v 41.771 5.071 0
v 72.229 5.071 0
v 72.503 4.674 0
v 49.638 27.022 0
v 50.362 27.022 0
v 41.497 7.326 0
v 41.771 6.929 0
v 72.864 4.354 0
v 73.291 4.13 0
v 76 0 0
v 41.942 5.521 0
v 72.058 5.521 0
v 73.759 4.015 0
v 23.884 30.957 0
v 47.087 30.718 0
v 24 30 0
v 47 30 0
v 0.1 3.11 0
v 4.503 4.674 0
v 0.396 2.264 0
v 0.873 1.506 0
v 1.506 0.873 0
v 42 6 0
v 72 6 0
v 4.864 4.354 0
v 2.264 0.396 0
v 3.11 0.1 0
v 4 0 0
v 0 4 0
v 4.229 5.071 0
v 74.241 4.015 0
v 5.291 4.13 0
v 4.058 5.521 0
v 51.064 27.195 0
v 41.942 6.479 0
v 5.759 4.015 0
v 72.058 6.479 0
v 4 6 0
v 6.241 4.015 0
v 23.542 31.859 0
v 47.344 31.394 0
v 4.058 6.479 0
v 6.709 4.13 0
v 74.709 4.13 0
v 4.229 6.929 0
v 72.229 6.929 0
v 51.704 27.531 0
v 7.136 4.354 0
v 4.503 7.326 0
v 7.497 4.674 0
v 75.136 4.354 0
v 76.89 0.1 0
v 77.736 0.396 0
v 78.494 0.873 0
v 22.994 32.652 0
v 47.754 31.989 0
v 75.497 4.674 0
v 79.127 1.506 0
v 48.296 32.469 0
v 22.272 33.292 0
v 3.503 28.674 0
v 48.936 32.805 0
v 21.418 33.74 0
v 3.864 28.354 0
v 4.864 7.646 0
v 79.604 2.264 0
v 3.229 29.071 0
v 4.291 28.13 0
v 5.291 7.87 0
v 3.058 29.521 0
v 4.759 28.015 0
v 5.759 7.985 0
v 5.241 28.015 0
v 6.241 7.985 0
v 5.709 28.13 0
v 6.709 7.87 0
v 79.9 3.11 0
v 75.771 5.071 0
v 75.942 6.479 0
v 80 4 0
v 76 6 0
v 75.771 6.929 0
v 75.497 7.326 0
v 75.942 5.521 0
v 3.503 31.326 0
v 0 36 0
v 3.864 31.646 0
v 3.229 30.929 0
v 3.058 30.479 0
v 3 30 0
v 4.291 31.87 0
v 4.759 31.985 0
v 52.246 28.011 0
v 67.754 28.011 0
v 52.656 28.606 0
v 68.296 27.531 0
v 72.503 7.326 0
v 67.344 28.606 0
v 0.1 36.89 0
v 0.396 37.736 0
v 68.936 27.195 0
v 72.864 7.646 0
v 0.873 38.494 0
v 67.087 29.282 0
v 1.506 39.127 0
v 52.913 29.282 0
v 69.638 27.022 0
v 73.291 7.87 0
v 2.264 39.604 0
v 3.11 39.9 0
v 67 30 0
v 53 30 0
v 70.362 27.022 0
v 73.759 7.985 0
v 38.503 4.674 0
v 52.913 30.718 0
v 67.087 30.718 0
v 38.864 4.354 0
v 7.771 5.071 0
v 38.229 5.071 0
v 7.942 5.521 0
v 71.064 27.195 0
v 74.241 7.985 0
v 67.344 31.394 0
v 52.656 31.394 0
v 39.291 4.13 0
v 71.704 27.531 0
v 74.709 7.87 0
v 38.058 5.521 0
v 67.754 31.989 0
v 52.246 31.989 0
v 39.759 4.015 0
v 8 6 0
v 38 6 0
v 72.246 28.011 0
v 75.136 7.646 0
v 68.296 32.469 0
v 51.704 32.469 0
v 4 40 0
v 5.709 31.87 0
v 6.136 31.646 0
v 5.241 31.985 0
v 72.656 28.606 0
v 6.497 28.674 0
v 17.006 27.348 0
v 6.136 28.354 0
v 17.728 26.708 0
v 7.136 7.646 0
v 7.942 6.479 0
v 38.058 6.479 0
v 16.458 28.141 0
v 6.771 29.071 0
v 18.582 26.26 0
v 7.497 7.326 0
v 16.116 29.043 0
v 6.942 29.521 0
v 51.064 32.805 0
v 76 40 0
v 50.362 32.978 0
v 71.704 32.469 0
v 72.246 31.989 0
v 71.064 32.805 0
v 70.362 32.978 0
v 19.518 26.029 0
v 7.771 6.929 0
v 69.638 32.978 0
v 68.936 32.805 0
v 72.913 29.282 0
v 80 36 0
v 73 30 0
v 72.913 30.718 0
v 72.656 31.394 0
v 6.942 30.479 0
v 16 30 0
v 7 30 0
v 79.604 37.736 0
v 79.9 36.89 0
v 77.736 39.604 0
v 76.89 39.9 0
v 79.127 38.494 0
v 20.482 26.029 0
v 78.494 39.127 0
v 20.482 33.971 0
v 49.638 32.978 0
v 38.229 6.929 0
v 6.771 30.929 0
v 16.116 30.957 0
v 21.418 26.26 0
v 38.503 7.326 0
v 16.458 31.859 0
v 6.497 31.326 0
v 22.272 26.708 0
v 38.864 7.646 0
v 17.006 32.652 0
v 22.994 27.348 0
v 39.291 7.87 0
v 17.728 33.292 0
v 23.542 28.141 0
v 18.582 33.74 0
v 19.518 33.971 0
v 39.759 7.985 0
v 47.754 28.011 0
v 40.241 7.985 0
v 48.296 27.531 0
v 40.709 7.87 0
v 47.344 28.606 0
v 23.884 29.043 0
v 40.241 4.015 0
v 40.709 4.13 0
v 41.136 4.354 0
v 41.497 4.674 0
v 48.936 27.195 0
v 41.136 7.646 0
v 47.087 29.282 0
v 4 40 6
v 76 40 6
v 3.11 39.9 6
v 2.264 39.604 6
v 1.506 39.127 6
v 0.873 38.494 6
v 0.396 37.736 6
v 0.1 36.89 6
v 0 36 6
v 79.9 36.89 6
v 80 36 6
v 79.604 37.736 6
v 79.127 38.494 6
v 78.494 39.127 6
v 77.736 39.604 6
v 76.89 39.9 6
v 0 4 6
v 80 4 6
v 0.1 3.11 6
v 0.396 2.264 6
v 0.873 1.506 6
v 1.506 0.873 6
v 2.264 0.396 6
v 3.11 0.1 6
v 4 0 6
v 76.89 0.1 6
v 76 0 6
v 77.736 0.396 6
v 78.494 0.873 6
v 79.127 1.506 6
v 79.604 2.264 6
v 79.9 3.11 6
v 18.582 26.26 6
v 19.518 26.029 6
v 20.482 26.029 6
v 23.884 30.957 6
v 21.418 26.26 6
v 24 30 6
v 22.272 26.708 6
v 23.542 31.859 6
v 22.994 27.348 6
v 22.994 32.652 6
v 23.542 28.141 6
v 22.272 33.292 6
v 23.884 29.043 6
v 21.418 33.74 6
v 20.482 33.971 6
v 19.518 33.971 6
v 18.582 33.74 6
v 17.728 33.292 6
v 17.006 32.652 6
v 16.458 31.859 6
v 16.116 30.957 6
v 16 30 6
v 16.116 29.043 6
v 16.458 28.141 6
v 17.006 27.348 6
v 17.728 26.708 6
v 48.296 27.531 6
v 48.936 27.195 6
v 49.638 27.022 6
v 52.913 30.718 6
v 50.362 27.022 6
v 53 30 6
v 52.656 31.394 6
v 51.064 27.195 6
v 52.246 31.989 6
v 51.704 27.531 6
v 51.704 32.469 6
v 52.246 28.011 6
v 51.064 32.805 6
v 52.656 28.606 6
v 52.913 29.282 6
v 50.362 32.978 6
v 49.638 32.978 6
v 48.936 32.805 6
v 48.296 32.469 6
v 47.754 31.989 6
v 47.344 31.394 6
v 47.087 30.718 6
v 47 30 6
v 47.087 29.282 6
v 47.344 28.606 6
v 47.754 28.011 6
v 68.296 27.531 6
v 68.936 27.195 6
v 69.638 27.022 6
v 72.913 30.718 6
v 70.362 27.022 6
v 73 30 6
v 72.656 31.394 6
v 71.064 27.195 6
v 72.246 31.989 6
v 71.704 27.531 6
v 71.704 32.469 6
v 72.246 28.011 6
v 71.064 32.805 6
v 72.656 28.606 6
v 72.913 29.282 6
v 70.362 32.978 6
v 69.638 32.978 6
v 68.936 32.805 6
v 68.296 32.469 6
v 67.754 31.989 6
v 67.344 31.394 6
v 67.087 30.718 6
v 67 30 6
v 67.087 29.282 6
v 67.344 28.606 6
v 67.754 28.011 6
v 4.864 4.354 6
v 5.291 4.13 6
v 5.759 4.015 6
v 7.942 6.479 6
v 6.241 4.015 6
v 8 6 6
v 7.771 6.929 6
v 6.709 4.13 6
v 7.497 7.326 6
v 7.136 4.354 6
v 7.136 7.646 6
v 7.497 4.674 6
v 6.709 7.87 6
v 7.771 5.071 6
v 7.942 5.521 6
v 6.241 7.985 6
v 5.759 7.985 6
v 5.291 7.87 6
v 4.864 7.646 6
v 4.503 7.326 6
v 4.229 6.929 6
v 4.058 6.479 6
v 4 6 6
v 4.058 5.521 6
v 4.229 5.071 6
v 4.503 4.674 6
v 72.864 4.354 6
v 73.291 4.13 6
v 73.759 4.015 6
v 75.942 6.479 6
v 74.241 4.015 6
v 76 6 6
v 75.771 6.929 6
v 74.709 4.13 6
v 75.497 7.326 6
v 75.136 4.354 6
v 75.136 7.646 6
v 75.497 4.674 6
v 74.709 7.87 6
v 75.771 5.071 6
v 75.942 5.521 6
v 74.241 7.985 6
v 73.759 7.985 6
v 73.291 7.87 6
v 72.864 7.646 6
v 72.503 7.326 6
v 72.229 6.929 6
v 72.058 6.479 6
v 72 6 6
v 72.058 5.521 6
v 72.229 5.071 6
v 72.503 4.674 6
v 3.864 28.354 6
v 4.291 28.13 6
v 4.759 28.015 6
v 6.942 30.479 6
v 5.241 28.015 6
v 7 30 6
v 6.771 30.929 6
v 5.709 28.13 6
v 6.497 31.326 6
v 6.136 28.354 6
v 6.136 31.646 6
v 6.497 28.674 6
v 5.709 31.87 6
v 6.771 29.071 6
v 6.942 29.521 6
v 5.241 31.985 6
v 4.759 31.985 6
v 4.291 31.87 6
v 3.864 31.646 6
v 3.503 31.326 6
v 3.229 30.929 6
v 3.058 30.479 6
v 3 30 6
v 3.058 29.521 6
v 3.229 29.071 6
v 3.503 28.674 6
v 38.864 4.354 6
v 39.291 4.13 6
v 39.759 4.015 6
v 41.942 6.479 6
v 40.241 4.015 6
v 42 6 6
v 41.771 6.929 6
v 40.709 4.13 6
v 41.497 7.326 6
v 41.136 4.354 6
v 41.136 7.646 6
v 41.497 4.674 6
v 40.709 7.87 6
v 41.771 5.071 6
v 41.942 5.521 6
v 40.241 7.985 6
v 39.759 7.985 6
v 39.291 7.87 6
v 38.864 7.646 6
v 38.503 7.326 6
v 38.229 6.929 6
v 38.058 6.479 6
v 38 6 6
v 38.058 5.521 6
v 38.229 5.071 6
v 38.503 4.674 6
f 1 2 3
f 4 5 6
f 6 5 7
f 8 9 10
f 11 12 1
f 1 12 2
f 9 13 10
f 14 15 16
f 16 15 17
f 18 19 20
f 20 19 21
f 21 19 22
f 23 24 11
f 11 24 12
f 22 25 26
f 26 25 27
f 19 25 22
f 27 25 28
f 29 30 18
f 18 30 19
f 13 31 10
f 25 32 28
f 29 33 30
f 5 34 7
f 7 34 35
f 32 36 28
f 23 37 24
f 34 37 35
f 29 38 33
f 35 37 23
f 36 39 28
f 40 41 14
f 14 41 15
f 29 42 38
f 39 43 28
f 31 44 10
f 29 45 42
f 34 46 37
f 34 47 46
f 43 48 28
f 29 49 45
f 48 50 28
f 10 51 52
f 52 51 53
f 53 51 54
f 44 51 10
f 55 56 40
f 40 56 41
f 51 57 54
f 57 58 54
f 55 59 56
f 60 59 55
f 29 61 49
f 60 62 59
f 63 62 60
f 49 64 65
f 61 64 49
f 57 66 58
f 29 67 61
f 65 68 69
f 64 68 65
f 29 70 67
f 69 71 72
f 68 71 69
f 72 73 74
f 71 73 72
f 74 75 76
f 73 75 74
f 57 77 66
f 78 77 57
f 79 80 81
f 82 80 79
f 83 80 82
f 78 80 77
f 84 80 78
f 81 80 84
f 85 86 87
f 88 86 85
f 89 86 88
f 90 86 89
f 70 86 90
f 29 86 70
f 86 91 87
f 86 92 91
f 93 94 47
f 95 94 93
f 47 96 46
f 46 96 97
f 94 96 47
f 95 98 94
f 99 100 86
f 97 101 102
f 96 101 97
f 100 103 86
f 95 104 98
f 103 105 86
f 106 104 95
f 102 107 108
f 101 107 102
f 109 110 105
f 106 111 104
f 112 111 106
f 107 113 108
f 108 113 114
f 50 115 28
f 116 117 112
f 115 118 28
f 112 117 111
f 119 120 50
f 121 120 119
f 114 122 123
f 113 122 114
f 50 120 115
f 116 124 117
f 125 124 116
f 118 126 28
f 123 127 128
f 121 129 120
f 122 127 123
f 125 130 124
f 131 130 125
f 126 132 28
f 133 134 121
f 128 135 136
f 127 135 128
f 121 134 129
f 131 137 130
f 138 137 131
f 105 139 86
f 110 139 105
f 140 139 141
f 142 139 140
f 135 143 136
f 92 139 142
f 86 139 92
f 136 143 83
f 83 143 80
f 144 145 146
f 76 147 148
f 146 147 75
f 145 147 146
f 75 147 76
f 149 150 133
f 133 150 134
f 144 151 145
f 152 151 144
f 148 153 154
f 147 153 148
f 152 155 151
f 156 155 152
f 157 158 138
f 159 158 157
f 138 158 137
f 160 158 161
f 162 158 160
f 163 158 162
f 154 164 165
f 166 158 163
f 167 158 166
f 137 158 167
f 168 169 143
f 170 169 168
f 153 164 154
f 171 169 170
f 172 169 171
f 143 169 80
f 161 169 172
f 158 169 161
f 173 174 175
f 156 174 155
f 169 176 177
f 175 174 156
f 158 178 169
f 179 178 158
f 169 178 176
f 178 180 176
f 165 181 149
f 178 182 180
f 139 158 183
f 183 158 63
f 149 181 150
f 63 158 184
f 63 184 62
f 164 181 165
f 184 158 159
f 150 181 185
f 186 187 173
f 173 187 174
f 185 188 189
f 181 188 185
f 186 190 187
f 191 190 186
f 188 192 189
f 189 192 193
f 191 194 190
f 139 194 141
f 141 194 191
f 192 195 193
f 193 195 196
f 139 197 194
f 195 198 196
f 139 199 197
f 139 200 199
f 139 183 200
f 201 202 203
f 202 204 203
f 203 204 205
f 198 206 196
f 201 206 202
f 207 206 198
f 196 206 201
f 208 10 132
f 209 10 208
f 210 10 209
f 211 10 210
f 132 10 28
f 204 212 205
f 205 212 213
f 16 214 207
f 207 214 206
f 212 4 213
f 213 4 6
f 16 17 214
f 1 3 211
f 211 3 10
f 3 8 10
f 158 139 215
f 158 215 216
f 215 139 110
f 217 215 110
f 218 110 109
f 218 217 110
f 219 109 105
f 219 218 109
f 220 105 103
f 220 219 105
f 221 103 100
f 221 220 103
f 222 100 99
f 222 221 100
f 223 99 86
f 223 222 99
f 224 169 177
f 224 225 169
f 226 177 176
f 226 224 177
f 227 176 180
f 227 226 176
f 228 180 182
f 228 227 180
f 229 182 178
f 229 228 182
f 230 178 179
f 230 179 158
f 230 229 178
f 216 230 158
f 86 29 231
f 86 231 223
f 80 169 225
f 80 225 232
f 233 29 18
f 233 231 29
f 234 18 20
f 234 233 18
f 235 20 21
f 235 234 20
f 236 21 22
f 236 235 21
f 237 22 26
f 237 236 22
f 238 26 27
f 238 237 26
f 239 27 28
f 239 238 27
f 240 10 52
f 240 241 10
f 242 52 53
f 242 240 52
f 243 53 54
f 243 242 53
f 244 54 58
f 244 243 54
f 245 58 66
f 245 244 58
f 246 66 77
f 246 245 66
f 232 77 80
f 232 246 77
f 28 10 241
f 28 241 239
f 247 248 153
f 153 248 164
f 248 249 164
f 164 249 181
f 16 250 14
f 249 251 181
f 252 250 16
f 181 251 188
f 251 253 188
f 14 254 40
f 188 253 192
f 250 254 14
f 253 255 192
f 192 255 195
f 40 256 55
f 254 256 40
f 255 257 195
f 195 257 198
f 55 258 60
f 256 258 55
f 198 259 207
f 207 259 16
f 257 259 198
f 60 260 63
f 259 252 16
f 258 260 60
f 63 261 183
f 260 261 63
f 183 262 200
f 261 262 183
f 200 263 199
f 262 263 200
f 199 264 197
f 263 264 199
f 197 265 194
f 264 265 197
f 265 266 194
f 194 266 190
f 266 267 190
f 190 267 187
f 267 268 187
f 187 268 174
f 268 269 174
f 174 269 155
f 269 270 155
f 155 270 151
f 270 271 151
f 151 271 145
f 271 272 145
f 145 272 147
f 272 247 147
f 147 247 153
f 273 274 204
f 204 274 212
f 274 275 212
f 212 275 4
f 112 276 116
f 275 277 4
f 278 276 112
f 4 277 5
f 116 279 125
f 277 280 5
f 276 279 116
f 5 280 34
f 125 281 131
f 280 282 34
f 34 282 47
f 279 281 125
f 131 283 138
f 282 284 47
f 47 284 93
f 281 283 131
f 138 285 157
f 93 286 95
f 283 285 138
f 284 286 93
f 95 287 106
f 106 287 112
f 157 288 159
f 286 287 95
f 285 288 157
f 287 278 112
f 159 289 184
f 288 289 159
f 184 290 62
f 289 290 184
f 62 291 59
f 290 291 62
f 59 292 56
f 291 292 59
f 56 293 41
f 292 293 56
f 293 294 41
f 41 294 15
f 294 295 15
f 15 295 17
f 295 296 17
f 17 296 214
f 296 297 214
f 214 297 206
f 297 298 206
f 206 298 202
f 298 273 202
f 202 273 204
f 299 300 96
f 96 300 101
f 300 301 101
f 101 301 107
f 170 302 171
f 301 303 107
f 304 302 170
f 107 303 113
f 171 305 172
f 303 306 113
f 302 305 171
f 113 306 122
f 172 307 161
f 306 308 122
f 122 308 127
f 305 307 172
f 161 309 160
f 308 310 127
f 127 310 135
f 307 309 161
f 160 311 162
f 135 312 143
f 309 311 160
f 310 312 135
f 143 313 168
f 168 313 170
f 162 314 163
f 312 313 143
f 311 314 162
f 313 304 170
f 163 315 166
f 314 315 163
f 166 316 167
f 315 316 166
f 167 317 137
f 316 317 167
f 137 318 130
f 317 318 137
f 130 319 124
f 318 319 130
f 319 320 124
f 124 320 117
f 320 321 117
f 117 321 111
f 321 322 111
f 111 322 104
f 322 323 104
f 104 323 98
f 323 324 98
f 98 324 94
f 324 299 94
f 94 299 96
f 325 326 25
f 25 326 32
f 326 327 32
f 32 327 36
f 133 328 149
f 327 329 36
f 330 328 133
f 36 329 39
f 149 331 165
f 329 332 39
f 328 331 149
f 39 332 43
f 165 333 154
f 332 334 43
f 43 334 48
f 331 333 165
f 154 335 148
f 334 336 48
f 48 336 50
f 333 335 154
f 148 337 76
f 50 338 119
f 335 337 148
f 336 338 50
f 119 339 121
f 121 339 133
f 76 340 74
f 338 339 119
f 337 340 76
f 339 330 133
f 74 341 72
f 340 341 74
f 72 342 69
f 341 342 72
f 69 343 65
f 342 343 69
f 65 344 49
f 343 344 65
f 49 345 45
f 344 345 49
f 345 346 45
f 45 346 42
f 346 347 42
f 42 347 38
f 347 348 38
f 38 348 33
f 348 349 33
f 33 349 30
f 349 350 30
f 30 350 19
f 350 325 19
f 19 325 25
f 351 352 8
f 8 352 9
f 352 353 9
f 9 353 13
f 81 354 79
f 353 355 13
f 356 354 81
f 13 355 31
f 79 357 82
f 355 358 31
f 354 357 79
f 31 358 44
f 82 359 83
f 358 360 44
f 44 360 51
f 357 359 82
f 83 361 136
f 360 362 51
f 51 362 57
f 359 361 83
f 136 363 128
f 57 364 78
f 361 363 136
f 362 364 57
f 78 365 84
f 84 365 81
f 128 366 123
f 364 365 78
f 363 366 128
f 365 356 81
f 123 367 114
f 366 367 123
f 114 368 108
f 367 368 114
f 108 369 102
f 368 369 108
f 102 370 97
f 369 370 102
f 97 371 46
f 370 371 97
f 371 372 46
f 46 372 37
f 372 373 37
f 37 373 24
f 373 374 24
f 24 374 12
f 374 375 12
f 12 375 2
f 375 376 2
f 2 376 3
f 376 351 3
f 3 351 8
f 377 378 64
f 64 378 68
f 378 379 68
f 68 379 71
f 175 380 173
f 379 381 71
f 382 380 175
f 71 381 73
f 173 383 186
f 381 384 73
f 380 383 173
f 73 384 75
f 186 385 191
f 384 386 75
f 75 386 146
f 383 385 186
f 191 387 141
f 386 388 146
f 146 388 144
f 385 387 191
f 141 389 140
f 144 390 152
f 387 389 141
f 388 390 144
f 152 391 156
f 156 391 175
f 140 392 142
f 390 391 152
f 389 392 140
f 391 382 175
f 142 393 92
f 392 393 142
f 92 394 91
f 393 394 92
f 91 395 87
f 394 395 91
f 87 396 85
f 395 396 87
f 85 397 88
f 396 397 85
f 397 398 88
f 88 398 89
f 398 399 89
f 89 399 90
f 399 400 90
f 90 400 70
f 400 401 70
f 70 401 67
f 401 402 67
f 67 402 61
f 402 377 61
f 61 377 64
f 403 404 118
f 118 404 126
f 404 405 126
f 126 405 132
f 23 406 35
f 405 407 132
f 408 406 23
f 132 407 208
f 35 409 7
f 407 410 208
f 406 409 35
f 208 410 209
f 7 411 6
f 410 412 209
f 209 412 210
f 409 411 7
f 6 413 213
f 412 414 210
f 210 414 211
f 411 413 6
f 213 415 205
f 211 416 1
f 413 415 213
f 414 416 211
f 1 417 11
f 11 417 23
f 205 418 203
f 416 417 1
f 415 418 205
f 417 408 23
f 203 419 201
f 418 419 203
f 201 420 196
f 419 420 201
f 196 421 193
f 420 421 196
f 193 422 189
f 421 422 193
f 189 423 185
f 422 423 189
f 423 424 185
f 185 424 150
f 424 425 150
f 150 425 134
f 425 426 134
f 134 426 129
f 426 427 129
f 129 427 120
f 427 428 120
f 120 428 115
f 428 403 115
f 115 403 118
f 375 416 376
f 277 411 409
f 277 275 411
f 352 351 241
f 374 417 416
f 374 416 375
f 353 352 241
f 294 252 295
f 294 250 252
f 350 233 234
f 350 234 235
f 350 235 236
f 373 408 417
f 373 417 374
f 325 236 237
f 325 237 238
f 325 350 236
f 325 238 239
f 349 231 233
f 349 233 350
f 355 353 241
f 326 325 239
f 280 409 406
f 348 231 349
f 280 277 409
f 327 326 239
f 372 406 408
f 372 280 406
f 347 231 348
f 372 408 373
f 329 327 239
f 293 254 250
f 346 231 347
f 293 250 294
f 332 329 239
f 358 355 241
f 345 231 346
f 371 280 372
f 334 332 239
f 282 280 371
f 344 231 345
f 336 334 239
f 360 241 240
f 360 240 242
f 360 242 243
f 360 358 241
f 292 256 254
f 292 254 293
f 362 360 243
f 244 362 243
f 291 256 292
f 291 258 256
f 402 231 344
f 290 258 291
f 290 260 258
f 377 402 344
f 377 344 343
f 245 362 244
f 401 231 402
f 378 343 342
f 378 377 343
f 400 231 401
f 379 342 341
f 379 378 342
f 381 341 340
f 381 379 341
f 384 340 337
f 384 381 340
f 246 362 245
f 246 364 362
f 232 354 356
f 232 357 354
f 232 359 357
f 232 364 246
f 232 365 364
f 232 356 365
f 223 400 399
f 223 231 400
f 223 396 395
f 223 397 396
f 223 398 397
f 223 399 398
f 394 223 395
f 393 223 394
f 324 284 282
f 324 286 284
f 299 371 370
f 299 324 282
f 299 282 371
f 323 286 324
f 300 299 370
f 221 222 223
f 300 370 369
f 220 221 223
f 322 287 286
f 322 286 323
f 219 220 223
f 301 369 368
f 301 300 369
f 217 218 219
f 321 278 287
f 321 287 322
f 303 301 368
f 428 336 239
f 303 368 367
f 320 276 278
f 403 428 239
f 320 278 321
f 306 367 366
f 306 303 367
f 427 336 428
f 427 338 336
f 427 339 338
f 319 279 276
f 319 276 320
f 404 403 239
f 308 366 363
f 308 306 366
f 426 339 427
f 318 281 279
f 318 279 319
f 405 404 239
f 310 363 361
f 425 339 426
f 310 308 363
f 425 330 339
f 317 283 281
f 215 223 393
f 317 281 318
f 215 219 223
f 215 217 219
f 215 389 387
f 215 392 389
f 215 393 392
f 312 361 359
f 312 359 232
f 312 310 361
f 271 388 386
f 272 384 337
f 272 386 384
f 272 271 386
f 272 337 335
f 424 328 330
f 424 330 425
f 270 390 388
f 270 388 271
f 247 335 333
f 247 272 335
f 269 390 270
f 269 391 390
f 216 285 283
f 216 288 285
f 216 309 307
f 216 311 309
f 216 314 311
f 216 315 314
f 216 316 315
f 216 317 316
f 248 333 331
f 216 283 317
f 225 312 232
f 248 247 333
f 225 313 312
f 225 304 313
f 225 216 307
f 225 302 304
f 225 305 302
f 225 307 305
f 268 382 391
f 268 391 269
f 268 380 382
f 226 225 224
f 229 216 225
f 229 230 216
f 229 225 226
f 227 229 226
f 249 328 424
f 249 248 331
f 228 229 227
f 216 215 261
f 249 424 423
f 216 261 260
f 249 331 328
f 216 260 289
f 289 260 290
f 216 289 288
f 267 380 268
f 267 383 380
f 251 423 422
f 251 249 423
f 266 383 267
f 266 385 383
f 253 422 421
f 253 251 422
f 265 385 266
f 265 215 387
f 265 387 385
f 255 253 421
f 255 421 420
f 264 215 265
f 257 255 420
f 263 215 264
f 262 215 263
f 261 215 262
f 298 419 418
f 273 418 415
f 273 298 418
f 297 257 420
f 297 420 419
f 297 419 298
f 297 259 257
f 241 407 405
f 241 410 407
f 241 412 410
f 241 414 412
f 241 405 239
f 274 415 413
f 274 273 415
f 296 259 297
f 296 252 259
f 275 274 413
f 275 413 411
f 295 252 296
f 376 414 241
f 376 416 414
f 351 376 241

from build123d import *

# Parameters (mm, degrees)
SKETCH_W        = 80
SKETCH_H        = 40
PAD_DEPTH       = 6
SKETCH001_R     = 3
SKETCH001_R_2   = 4
POCKET_DEPTH    = 7
FILLET_R        = 4
FILLET001_R     = 4
FILLET002_R     = 4
FILLET003_R     = 4
SKETCH002_R     = 2
POCKET001_DEPTH = 8


with BuildPart() as part:
    # Sketch → Pad (new body)
    with BuildSketch(Plane.XY):
        with Locations((40, 20)):
            Rectangle(SKETCH_W, SKETCH_H)
    extrude(amount=PAD_DEPTH)

    # Sketch001 → Pocket (cut)
    with BuildSketch(Plane.XY.offset(6)):
        with Locations((50, 30)):
            Circle(SKETCH001_R)
        with Locations((70, 30)):
            Circle(SKETCH001_R)
        with Locations((20, 30)):
            Circle(SKETCH001_R_2)
    extrude(amount=-POCKET_DEPTH, mode=Mode.SUBTRACT)

    # Fillet
    fillet_edges = [part.edges().sort_by_distance(p)[0] for p in [
        (0, 0, 3),
    ]]
    fillet(fillet_edges, radius=FILLET_R)

    # Fillet001
    fillet001_edges = [part.edges().sort_by_distance(p)[0] for p in [
        (80, 0, 3),
    ]]
    fillet(fillet001_edges, radius=FILLET001_R)

    # Fillet002
    fillet002_edges = [part.edges().sort_by_distance(p)[0] for p in [
        (80, 40, 3),
    ]]
    fillet(fillet002_edges, radius=FILLET002_R)

    # Fillet003
    fillet003_edges = [part.edges().sort_by_distance(p)[0] for p in [
        (0, 40, 3),
    ]]
    fillet(fillet003_edges, radius=FILLET003_R)

    # Sketch002 → Pocket001 (cut)
    with BuildSketch(Plane.XY.offset(6)):
        with Locations((5, 30)):
            Circle(SKETCH002_R)
        with Locations((6, 6)):
            Circle(SKETCH002_R)
        with Locations((40, 6)):
            Circle(SKETCH002_R)
        with Locations((74, 6)):
            Circle(SKETCH002_R)
    extrude(amount=-POCKET001_DEPTH, mode=Mode.SUBTRACT)


solid = part.part
